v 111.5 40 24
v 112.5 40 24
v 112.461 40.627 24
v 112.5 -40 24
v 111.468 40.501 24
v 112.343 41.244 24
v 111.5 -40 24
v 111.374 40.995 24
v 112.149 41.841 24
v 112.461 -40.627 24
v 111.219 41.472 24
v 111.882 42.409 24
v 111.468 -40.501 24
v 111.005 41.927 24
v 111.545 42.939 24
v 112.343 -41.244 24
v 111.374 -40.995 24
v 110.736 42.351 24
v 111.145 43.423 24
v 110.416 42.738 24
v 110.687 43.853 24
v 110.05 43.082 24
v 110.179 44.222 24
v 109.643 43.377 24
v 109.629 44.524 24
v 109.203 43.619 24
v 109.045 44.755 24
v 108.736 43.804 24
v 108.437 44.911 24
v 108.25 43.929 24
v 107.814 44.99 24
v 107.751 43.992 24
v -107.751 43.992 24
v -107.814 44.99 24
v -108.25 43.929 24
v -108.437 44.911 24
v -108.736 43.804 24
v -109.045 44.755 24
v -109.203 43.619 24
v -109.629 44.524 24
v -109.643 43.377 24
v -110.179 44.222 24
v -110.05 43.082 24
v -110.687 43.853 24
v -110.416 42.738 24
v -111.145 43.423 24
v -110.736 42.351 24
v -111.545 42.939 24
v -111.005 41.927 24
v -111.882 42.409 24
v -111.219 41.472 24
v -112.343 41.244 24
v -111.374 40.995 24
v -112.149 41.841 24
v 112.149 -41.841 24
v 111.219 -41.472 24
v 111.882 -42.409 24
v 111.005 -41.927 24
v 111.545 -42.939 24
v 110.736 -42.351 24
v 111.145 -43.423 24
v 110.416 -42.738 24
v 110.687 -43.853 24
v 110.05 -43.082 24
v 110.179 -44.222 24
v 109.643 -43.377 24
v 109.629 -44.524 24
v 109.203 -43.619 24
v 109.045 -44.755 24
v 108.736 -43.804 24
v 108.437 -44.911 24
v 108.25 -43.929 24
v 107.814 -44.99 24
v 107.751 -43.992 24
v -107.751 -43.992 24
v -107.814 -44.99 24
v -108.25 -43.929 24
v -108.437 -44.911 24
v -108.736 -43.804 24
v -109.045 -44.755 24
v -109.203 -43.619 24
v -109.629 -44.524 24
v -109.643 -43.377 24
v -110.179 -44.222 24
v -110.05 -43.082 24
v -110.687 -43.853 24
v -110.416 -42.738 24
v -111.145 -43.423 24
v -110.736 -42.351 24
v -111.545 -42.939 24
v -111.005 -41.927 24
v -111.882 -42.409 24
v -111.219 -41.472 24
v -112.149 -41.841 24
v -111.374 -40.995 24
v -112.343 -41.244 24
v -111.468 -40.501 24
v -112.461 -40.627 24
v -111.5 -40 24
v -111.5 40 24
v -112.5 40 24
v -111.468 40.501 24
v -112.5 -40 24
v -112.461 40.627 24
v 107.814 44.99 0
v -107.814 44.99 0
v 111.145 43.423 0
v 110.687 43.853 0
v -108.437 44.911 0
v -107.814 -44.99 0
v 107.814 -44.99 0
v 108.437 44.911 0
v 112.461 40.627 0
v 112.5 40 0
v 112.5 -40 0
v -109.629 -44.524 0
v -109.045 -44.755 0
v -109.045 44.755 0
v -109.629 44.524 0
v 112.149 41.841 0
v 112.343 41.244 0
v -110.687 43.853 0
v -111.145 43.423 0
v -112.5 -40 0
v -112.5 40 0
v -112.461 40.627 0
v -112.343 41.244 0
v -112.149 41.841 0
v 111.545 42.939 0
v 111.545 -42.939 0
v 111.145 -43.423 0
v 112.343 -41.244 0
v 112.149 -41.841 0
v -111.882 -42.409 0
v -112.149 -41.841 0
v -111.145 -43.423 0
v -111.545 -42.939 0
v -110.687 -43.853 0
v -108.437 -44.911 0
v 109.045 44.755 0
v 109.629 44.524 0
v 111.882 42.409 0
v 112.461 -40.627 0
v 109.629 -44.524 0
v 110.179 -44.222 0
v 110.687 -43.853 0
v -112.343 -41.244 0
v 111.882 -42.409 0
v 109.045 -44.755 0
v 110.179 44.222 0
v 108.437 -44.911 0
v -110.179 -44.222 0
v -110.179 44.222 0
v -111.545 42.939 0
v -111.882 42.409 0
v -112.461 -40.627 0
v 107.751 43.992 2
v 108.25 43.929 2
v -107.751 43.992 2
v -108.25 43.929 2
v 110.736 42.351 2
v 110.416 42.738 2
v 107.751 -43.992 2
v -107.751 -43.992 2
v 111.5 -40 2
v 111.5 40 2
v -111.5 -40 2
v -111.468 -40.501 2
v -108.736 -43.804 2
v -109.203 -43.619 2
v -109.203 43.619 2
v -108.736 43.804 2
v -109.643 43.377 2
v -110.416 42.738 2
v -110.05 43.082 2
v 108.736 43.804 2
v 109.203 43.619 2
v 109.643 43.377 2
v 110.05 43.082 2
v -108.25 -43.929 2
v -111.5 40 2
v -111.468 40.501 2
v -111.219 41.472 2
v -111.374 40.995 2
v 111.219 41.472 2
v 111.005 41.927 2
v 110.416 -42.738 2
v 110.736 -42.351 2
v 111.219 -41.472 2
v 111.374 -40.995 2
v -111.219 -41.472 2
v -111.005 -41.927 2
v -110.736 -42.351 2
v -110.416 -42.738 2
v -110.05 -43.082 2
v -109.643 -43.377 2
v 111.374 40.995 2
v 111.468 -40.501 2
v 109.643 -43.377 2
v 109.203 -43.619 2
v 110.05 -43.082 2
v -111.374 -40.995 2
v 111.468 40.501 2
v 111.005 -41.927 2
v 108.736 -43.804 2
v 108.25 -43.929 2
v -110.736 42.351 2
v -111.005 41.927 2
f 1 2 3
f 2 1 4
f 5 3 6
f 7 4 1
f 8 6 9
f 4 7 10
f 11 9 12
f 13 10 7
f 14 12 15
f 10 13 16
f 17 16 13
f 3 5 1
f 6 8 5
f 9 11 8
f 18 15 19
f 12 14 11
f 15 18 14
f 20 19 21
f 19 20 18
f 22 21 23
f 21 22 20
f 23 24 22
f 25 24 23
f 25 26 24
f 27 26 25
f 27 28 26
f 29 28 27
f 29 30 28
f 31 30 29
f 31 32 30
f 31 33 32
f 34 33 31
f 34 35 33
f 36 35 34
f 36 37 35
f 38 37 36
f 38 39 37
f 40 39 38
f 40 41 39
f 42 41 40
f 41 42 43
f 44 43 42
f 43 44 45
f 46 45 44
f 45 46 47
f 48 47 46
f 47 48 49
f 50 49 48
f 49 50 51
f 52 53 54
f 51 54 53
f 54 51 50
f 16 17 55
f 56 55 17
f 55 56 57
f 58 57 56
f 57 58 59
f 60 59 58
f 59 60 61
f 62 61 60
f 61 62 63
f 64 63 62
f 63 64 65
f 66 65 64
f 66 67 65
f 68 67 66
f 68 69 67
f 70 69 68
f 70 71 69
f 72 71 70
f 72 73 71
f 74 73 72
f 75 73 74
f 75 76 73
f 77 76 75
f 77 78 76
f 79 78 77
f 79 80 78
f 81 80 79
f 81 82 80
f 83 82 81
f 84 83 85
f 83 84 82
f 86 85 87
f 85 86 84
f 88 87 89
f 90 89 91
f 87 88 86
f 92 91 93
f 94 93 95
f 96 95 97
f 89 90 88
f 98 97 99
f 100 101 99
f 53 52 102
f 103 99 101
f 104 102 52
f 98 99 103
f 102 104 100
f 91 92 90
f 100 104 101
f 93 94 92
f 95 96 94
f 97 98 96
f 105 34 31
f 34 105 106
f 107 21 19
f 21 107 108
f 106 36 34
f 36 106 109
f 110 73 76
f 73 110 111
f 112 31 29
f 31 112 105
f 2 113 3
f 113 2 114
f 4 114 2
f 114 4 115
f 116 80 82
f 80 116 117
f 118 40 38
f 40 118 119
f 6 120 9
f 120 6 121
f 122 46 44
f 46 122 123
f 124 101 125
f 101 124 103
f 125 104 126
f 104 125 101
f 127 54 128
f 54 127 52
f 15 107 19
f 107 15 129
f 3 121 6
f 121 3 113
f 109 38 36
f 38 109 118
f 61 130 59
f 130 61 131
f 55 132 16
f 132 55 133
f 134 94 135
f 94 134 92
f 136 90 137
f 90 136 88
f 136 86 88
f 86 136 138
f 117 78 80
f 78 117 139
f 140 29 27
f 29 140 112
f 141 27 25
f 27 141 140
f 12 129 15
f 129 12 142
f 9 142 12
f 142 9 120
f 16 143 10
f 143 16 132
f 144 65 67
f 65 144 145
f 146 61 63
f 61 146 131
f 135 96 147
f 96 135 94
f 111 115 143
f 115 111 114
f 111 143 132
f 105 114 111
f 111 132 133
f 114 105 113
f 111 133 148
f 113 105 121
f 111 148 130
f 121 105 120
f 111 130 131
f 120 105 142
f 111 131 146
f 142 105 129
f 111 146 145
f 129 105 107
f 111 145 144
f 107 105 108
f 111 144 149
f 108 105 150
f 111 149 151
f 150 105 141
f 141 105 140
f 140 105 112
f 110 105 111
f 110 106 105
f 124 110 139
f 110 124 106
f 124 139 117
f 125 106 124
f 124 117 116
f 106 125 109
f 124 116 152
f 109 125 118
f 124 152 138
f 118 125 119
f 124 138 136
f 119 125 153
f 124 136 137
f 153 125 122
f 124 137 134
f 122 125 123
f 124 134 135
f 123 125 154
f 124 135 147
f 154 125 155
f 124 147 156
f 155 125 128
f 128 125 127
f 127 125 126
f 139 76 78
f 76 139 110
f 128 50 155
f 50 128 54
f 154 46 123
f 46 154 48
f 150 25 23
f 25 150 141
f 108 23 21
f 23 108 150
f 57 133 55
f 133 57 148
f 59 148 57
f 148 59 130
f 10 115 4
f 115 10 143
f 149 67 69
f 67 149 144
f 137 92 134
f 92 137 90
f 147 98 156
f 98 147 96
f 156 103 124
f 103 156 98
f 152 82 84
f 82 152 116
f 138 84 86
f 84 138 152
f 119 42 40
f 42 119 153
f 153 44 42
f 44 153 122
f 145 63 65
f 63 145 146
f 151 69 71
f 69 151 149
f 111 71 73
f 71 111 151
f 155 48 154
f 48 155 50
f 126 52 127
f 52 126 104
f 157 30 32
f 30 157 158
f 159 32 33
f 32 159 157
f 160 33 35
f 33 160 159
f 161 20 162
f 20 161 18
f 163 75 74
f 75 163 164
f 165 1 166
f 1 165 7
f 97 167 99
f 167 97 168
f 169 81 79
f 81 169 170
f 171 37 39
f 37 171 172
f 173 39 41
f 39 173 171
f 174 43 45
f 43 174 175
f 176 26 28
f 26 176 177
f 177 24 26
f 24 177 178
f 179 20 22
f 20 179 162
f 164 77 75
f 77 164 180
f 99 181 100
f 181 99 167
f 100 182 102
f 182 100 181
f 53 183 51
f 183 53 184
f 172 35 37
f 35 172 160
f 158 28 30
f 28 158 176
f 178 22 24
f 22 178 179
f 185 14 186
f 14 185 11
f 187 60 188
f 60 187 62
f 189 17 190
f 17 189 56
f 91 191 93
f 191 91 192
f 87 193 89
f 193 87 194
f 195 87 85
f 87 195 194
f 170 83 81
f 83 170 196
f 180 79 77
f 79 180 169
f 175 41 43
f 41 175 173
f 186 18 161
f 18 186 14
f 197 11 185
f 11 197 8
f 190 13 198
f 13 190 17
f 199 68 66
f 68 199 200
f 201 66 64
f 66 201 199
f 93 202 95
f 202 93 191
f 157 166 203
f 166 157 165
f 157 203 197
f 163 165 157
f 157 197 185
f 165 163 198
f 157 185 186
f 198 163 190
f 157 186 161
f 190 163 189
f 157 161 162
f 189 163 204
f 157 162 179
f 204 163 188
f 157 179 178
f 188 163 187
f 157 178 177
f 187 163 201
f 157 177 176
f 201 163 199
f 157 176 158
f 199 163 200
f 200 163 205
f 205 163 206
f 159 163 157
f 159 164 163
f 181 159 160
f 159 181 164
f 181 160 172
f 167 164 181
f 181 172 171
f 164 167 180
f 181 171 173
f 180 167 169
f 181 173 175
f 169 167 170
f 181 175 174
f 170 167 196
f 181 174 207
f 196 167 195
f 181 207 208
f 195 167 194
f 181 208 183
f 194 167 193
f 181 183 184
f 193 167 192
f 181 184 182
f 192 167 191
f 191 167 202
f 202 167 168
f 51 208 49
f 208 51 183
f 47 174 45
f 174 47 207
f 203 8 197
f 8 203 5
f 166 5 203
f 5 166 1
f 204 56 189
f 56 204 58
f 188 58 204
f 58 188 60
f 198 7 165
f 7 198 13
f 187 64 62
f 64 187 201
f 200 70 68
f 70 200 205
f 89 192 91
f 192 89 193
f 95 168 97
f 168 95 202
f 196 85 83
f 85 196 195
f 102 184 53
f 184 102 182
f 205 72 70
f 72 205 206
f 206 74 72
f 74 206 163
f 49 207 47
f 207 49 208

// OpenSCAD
$fn = 50;


difference() {
	union() {
		hull() {
			translate(v = [-107.5000000000, 40.0000000000, 0]) {
				cylinder(h = 24, r = 5);
			}
			translate(v = [107.5000000000, 40.0000000000, 0]) {
				cylinder(h = 24, r = 5);
			}
			translate(v = [-107.5000000000, -40.0000000000, 0]) {
				cylinder(h = 24, r = 5);
			}
			translate(v = [107.5000000000, -40.0000000000, 0]) {
				cylinder(h = 24, r = 5);
			}
		}
	}
	union() {
		translate(v = [0, 0, 2]) {
			hull() {
				translate(v = [-107.5000000000, 40.0000000000, 0]) {
					cylinder(h = 22, r = 4);
				}
				translate(v = [107.5000000000, 40.0000000000, 0]) {
					cylinder(h = 22, r = 4);
				}
				translate(v = [-107.5000000000, -40.0000000000, 0]) {
					cylinder(h = 22, r = 4);
				}
				translate(v = [107.5000000000, -40.0000000000, 0]) {
					cylinder(h = 22, r = 4);
				}
			}
		}
	}
}
